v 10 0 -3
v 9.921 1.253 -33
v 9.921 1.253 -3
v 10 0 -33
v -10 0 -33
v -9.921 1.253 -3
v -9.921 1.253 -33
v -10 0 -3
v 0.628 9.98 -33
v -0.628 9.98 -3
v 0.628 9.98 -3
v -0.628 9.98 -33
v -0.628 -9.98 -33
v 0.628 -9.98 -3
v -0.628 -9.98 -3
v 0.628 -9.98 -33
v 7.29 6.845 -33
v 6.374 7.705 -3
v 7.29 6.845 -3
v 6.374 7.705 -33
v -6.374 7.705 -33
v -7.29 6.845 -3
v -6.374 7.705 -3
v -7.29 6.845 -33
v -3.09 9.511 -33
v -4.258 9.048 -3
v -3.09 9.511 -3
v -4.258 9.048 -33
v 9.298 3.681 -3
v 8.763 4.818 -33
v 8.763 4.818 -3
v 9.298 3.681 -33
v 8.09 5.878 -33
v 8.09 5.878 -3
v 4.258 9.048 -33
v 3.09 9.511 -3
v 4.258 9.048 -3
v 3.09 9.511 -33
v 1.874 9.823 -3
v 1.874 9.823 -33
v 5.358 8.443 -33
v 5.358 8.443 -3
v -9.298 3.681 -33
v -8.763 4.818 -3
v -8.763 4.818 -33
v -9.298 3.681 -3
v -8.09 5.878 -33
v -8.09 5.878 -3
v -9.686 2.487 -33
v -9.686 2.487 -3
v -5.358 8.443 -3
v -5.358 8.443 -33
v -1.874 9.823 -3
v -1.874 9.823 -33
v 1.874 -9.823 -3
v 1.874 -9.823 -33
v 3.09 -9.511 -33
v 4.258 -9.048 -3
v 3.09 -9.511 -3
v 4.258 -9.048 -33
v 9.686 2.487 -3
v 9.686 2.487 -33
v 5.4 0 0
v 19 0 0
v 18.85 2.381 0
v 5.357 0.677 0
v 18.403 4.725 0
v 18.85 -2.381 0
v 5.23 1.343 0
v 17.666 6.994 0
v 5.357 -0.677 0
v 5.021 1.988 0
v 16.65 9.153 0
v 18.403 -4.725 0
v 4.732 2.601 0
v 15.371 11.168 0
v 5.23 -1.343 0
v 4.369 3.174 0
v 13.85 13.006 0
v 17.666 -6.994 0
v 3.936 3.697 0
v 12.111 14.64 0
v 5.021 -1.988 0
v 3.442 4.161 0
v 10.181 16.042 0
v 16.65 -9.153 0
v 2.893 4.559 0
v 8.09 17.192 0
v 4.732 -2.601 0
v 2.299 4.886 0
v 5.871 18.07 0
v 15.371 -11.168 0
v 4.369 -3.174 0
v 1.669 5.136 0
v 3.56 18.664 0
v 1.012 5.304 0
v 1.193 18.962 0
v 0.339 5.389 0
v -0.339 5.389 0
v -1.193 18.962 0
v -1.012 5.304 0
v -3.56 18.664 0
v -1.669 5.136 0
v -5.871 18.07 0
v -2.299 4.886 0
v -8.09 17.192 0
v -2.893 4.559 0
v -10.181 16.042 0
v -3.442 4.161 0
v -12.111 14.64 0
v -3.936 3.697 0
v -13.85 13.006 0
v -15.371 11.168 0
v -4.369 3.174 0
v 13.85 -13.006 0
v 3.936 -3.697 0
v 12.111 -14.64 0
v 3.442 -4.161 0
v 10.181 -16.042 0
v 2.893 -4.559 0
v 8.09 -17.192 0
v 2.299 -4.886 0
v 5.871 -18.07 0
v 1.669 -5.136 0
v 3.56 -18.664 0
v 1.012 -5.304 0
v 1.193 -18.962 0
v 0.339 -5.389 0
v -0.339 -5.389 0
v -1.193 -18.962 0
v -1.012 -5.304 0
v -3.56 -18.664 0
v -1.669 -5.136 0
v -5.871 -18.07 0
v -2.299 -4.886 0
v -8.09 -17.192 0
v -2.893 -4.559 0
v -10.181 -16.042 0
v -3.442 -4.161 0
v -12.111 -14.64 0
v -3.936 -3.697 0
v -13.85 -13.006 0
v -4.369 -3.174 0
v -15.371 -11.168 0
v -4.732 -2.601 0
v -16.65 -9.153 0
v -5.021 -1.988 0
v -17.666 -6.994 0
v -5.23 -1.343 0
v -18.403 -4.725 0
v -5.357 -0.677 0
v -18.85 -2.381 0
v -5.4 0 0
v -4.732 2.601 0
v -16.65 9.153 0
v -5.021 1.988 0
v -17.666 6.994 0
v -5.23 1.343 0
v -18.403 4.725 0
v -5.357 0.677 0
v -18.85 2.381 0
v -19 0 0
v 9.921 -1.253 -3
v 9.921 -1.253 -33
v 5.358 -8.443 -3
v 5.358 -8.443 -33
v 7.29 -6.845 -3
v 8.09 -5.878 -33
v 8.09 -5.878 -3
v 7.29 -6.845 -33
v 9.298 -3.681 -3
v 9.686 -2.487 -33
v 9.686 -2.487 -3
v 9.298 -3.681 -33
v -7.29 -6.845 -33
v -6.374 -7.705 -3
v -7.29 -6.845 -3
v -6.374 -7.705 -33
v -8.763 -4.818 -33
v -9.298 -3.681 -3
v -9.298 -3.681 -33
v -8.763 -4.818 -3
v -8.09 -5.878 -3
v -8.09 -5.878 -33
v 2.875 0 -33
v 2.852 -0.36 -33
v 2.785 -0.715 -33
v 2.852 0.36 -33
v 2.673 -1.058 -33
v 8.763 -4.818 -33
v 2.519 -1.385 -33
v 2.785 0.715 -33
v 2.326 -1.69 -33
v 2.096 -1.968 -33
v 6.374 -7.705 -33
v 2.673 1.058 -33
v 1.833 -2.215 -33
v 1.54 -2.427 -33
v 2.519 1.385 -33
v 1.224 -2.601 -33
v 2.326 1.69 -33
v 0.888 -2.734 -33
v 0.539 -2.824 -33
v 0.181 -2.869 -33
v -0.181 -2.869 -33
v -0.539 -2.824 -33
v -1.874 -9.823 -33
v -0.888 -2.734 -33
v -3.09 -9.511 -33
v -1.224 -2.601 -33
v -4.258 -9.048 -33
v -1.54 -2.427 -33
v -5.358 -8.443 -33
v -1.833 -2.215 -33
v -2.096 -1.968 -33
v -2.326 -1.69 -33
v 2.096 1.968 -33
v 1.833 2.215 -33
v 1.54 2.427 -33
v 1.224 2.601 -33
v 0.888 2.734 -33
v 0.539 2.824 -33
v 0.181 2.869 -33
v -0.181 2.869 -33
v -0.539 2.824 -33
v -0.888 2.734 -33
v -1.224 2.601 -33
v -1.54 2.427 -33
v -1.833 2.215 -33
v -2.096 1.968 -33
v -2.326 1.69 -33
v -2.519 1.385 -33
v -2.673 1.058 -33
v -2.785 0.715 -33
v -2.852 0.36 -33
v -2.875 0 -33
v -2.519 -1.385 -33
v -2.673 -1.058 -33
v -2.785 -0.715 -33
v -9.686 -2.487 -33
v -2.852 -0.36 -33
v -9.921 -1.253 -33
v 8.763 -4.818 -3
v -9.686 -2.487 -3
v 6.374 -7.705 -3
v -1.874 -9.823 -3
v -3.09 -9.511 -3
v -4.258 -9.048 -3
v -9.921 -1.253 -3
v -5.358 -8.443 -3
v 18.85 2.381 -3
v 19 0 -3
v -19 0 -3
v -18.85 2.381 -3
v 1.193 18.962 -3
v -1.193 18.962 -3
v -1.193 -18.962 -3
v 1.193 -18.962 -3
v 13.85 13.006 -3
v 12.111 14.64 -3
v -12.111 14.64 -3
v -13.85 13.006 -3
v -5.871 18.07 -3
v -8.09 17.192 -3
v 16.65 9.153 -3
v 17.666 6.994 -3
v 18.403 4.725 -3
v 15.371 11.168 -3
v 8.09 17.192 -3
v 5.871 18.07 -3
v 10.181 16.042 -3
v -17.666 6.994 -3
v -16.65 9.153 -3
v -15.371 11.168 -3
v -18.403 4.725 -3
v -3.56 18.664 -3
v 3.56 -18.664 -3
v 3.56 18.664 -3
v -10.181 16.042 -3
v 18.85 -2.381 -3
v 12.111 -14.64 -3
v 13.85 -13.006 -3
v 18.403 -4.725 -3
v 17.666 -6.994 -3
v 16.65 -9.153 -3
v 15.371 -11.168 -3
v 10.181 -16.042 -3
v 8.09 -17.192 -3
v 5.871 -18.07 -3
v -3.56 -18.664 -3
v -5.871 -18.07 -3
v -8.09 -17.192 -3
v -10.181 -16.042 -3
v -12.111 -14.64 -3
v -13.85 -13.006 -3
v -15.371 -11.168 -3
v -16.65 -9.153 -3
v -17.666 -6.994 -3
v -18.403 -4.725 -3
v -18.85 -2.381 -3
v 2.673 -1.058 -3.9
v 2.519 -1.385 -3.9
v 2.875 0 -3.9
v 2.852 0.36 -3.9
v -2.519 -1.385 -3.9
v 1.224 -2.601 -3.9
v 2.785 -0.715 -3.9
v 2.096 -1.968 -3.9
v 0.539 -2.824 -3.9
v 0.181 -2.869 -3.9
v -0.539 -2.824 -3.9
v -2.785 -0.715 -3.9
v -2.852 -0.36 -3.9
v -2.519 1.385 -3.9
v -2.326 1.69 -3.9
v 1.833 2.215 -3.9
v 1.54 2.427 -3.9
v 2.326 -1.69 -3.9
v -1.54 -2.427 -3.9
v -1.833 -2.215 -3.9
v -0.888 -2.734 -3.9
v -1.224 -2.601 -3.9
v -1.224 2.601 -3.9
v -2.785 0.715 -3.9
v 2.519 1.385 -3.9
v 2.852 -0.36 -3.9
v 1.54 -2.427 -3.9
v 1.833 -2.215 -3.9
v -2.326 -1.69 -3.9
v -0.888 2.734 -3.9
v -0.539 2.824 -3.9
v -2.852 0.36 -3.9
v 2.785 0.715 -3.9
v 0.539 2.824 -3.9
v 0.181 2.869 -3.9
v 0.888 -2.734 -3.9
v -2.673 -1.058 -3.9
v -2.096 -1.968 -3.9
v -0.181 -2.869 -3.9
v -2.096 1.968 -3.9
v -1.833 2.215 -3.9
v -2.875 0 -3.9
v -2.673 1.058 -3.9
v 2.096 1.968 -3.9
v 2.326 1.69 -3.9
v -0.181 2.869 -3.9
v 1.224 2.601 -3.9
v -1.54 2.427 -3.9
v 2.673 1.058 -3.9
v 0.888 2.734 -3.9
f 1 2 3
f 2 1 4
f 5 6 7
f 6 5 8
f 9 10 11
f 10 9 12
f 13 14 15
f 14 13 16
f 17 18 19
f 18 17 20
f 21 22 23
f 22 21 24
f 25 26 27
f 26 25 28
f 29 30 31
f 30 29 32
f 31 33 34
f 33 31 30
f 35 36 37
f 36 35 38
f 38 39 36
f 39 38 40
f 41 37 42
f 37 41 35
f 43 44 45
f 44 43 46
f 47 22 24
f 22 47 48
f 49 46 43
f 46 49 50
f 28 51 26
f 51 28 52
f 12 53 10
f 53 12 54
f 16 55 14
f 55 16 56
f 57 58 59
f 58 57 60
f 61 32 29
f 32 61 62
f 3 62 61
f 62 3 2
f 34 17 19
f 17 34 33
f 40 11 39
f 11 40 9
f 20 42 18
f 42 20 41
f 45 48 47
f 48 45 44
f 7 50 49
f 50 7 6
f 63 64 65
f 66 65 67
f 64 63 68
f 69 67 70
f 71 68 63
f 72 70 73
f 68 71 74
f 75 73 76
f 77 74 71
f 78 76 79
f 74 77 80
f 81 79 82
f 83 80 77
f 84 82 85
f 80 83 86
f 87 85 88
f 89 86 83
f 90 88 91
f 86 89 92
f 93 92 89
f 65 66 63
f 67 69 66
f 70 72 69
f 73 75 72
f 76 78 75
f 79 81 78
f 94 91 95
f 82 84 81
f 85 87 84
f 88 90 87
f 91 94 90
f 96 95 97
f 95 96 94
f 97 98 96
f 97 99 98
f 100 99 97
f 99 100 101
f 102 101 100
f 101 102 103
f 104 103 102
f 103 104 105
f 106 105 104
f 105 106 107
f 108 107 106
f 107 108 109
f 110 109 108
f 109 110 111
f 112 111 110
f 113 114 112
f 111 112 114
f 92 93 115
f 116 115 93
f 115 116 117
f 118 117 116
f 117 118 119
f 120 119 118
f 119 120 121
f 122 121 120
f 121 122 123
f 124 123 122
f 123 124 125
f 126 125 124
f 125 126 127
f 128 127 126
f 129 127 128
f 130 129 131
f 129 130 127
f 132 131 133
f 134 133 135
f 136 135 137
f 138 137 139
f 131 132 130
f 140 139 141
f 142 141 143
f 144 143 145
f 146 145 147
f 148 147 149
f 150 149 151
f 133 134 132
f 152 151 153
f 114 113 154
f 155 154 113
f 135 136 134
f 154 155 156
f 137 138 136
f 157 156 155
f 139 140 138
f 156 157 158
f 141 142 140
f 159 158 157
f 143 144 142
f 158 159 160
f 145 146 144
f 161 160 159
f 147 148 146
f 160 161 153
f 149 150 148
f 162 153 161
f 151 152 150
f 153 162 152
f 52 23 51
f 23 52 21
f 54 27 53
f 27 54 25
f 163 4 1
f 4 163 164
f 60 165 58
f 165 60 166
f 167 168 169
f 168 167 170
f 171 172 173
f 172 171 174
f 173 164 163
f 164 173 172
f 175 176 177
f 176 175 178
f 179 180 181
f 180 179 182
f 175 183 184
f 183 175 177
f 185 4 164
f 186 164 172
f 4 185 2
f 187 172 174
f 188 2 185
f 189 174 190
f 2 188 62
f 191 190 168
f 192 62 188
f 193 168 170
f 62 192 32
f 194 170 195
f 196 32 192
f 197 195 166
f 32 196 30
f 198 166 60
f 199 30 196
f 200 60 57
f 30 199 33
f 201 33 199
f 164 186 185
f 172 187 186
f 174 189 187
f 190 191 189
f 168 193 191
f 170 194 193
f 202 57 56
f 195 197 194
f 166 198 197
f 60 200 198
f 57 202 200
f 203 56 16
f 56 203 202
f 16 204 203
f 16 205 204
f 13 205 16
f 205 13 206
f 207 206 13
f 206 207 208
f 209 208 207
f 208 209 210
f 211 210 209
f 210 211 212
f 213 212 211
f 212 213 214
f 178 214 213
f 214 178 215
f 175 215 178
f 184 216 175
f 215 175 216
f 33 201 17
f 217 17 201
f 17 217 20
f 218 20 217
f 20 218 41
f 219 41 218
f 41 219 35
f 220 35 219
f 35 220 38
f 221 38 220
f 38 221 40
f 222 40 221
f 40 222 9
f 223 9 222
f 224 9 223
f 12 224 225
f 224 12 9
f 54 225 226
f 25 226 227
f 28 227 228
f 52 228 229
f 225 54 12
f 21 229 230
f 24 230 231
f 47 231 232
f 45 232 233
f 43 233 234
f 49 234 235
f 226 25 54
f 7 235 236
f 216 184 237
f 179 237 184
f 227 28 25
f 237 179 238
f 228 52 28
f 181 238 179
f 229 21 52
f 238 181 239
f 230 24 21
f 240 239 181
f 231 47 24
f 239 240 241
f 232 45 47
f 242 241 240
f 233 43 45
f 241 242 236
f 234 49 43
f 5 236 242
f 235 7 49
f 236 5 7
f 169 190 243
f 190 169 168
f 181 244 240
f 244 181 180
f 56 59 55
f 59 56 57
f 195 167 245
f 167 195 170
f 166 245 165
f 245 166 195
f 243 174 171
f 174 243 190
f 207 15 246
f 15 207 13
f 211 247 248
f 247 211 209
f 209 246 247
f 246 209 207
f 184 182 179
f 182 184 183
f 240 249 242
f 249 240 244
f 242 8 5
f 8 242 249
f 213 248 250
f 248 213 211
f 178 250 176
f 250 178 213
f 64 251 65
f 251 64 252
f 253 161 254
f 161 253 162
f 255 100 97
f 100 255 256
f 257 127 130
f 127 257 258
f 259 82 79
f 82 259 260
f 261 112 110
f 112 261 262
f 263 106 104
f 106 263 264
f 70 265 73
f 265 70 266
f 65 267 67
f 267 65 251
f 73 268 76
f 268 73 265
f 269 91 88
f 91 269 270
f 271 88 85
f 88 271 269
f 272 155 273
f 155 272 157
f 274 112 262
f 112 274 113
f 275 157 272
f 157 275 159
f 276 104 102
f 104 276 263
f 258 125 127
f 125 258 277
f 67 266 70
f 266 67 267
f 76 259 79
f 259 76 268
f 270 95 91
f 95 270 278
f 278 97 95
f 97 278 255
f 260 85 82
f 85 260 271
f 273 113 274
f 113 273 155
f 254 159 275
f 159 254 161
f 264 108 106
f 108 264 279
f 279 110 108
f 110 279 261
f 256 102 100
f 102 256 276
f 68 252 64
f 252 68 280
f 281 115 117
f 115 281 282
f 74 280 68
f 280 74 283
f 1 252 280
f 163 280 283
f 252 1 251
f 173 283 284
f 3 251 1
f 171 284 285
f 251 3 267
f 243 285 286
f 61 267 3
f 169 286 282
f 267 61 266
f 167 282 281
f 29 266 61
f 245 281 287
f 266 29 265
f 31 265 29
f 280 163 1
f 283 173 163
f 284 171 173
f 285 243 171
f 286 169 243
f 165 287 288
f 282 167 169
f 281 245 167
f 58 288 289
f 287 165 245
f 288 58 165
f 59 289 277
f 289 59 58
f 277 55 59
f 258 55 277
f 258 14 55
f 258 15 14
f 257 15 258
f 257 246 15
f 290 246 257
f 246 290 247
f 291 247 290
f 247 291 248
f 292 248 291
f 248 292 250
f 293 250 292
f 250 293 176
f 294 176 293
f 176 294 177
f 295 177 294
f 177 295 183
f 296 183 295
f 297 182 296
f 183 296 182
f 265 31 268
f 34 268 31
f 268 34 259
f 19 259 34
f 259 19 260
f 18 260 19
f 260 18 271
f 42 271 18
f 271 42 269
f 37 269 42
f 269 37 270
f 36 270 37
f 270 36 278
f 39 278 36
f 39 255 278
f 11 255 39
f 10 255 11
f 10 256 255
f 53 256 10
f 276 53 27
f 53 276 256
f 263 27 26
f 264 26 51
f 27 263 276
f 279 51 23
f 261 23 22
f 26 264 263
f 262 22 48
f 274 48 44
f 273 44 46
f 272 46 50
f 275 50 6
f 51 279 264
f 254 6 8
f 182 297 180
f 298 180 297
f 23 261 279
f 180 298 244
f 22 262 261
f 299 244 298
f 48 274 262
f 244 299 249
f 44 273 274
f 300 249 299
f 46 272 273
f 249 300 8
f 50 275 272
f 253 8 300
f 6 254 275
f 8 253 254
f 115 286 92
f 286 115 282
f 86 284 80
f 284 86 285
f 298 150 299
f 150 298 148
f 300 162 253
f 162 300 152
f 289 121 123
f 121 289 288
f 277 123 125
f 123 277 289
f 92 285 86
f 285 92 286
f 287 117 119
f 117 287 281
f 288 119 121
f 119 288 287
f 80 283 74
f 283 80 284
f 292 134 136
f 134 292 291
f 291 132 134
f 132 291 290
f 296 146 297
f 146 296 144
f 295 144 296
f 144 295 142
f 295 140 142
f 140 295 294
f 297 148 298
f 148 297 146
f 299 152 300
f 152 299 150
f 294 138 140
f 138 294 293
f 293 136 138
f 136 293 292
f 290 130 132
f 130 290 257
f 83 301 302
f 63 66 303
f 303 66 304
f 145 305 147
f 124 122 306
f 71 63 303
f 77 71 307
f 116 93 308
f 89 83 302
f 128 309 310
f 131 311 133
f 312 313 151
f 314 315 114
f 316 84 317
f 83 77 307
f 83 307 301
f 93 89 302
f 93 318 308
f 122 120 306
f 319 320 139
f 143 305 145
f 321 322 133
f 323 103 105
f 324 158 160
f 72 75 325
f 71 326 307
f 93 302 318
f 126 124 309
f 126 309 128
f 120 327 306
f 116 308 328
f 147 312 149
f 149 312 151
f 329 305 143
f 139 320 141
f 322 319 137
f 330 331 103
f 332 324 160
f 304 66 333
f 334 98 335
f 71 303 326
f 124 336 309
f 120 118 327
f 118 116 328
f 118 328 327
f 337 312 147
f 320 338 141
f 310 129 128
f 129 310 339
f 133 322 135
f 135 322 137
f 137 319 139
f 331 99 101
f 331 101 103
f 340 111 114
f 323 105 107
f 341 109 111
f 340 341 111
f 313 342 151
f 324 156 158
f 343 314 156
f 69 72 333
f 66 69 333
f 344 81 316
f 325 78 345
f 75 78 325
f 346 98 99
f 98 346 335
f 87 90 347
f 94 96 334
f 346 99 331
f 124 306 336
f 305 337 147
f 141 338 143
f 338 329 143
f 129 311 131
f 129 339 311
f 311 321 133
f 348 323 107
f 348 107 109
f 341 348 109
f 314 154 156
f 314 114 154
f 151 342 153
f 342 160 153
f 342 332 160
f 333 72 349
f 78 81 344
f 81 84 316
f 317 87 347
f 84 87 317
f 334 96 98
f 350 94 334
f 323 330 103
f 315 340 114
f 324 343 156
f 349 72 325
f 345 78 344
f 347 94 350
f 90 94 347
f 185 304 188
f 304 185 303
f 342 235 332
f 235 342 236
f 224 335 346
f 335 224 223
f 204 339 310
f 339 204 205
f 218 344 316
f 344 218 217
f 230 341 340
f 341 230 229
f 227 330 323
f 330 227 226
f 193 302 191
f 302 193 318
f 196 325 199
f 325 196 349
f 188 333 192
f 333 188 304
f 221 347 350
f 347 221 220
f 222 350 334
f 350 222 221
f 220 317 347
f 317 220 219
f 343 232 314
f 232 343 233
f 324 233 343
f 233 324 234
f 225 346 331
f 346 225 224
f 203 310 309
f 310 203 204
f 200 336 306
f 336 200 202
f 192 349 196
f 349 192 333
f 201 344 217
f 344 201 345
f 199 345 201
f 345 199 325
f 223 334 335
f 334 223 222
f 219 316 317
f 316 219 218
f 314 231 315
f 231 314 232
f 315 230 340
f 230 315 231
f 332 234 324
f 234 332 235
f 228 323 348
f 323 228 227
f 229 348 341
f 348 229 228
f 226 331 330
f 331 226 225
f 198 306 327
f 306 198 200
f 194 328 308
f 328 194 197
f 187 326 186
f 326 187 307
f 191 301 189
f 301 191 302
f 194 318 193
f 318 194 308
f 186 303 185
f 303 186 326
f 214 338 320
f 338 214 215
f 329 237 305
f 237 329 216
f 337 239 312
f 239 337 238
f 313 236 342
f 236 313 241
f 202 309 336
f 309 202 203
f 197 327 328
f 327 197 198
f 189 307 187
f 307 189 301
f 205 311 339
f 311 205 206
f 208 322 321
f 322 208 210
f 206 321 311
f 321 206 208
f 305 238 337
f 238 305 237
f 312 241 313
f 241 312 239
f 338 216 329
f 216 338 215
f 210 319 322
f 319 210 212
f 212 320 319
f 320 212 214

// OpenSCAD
$fn = 50;


difference() {
	union() {
		translate(v = [0, 0, -33.0000000000]) {
			cylinder(h = 33, r = 10.0000000000);
		}
		translate(v = [0, 0, -3.0000000000]) {
			cylinder(h = 3, r = 19.0000000000);
		}
	}
	union() {
		translate(v = [0, 0, 0]) {
			rotate(a = [0, 0, 0]) {
				difference() {
					union() {
						#translate(v = [0, 0, -33.0000000000]) {
							cylinder(h = 33, r = 2.6000000000);
						}
						#translate(v = [0, 0, -3.9000000000]) {
							cylinder(h = 3.9000000000, r = 10.0000000000, r1 = 2.8750000000, r2 = 5.4000000000);
						}
						#translate(v = [0, 0, -33.0000000000]) {
							cylinder(h = 33, r = 2.8750000000);
						}
						#translate(v = [0, 0, -33.0000000000]) {
							cylinder(h = 33, r = 2.6000000000);
						}
					}
					union();
				}
			}
		}
	}
}
